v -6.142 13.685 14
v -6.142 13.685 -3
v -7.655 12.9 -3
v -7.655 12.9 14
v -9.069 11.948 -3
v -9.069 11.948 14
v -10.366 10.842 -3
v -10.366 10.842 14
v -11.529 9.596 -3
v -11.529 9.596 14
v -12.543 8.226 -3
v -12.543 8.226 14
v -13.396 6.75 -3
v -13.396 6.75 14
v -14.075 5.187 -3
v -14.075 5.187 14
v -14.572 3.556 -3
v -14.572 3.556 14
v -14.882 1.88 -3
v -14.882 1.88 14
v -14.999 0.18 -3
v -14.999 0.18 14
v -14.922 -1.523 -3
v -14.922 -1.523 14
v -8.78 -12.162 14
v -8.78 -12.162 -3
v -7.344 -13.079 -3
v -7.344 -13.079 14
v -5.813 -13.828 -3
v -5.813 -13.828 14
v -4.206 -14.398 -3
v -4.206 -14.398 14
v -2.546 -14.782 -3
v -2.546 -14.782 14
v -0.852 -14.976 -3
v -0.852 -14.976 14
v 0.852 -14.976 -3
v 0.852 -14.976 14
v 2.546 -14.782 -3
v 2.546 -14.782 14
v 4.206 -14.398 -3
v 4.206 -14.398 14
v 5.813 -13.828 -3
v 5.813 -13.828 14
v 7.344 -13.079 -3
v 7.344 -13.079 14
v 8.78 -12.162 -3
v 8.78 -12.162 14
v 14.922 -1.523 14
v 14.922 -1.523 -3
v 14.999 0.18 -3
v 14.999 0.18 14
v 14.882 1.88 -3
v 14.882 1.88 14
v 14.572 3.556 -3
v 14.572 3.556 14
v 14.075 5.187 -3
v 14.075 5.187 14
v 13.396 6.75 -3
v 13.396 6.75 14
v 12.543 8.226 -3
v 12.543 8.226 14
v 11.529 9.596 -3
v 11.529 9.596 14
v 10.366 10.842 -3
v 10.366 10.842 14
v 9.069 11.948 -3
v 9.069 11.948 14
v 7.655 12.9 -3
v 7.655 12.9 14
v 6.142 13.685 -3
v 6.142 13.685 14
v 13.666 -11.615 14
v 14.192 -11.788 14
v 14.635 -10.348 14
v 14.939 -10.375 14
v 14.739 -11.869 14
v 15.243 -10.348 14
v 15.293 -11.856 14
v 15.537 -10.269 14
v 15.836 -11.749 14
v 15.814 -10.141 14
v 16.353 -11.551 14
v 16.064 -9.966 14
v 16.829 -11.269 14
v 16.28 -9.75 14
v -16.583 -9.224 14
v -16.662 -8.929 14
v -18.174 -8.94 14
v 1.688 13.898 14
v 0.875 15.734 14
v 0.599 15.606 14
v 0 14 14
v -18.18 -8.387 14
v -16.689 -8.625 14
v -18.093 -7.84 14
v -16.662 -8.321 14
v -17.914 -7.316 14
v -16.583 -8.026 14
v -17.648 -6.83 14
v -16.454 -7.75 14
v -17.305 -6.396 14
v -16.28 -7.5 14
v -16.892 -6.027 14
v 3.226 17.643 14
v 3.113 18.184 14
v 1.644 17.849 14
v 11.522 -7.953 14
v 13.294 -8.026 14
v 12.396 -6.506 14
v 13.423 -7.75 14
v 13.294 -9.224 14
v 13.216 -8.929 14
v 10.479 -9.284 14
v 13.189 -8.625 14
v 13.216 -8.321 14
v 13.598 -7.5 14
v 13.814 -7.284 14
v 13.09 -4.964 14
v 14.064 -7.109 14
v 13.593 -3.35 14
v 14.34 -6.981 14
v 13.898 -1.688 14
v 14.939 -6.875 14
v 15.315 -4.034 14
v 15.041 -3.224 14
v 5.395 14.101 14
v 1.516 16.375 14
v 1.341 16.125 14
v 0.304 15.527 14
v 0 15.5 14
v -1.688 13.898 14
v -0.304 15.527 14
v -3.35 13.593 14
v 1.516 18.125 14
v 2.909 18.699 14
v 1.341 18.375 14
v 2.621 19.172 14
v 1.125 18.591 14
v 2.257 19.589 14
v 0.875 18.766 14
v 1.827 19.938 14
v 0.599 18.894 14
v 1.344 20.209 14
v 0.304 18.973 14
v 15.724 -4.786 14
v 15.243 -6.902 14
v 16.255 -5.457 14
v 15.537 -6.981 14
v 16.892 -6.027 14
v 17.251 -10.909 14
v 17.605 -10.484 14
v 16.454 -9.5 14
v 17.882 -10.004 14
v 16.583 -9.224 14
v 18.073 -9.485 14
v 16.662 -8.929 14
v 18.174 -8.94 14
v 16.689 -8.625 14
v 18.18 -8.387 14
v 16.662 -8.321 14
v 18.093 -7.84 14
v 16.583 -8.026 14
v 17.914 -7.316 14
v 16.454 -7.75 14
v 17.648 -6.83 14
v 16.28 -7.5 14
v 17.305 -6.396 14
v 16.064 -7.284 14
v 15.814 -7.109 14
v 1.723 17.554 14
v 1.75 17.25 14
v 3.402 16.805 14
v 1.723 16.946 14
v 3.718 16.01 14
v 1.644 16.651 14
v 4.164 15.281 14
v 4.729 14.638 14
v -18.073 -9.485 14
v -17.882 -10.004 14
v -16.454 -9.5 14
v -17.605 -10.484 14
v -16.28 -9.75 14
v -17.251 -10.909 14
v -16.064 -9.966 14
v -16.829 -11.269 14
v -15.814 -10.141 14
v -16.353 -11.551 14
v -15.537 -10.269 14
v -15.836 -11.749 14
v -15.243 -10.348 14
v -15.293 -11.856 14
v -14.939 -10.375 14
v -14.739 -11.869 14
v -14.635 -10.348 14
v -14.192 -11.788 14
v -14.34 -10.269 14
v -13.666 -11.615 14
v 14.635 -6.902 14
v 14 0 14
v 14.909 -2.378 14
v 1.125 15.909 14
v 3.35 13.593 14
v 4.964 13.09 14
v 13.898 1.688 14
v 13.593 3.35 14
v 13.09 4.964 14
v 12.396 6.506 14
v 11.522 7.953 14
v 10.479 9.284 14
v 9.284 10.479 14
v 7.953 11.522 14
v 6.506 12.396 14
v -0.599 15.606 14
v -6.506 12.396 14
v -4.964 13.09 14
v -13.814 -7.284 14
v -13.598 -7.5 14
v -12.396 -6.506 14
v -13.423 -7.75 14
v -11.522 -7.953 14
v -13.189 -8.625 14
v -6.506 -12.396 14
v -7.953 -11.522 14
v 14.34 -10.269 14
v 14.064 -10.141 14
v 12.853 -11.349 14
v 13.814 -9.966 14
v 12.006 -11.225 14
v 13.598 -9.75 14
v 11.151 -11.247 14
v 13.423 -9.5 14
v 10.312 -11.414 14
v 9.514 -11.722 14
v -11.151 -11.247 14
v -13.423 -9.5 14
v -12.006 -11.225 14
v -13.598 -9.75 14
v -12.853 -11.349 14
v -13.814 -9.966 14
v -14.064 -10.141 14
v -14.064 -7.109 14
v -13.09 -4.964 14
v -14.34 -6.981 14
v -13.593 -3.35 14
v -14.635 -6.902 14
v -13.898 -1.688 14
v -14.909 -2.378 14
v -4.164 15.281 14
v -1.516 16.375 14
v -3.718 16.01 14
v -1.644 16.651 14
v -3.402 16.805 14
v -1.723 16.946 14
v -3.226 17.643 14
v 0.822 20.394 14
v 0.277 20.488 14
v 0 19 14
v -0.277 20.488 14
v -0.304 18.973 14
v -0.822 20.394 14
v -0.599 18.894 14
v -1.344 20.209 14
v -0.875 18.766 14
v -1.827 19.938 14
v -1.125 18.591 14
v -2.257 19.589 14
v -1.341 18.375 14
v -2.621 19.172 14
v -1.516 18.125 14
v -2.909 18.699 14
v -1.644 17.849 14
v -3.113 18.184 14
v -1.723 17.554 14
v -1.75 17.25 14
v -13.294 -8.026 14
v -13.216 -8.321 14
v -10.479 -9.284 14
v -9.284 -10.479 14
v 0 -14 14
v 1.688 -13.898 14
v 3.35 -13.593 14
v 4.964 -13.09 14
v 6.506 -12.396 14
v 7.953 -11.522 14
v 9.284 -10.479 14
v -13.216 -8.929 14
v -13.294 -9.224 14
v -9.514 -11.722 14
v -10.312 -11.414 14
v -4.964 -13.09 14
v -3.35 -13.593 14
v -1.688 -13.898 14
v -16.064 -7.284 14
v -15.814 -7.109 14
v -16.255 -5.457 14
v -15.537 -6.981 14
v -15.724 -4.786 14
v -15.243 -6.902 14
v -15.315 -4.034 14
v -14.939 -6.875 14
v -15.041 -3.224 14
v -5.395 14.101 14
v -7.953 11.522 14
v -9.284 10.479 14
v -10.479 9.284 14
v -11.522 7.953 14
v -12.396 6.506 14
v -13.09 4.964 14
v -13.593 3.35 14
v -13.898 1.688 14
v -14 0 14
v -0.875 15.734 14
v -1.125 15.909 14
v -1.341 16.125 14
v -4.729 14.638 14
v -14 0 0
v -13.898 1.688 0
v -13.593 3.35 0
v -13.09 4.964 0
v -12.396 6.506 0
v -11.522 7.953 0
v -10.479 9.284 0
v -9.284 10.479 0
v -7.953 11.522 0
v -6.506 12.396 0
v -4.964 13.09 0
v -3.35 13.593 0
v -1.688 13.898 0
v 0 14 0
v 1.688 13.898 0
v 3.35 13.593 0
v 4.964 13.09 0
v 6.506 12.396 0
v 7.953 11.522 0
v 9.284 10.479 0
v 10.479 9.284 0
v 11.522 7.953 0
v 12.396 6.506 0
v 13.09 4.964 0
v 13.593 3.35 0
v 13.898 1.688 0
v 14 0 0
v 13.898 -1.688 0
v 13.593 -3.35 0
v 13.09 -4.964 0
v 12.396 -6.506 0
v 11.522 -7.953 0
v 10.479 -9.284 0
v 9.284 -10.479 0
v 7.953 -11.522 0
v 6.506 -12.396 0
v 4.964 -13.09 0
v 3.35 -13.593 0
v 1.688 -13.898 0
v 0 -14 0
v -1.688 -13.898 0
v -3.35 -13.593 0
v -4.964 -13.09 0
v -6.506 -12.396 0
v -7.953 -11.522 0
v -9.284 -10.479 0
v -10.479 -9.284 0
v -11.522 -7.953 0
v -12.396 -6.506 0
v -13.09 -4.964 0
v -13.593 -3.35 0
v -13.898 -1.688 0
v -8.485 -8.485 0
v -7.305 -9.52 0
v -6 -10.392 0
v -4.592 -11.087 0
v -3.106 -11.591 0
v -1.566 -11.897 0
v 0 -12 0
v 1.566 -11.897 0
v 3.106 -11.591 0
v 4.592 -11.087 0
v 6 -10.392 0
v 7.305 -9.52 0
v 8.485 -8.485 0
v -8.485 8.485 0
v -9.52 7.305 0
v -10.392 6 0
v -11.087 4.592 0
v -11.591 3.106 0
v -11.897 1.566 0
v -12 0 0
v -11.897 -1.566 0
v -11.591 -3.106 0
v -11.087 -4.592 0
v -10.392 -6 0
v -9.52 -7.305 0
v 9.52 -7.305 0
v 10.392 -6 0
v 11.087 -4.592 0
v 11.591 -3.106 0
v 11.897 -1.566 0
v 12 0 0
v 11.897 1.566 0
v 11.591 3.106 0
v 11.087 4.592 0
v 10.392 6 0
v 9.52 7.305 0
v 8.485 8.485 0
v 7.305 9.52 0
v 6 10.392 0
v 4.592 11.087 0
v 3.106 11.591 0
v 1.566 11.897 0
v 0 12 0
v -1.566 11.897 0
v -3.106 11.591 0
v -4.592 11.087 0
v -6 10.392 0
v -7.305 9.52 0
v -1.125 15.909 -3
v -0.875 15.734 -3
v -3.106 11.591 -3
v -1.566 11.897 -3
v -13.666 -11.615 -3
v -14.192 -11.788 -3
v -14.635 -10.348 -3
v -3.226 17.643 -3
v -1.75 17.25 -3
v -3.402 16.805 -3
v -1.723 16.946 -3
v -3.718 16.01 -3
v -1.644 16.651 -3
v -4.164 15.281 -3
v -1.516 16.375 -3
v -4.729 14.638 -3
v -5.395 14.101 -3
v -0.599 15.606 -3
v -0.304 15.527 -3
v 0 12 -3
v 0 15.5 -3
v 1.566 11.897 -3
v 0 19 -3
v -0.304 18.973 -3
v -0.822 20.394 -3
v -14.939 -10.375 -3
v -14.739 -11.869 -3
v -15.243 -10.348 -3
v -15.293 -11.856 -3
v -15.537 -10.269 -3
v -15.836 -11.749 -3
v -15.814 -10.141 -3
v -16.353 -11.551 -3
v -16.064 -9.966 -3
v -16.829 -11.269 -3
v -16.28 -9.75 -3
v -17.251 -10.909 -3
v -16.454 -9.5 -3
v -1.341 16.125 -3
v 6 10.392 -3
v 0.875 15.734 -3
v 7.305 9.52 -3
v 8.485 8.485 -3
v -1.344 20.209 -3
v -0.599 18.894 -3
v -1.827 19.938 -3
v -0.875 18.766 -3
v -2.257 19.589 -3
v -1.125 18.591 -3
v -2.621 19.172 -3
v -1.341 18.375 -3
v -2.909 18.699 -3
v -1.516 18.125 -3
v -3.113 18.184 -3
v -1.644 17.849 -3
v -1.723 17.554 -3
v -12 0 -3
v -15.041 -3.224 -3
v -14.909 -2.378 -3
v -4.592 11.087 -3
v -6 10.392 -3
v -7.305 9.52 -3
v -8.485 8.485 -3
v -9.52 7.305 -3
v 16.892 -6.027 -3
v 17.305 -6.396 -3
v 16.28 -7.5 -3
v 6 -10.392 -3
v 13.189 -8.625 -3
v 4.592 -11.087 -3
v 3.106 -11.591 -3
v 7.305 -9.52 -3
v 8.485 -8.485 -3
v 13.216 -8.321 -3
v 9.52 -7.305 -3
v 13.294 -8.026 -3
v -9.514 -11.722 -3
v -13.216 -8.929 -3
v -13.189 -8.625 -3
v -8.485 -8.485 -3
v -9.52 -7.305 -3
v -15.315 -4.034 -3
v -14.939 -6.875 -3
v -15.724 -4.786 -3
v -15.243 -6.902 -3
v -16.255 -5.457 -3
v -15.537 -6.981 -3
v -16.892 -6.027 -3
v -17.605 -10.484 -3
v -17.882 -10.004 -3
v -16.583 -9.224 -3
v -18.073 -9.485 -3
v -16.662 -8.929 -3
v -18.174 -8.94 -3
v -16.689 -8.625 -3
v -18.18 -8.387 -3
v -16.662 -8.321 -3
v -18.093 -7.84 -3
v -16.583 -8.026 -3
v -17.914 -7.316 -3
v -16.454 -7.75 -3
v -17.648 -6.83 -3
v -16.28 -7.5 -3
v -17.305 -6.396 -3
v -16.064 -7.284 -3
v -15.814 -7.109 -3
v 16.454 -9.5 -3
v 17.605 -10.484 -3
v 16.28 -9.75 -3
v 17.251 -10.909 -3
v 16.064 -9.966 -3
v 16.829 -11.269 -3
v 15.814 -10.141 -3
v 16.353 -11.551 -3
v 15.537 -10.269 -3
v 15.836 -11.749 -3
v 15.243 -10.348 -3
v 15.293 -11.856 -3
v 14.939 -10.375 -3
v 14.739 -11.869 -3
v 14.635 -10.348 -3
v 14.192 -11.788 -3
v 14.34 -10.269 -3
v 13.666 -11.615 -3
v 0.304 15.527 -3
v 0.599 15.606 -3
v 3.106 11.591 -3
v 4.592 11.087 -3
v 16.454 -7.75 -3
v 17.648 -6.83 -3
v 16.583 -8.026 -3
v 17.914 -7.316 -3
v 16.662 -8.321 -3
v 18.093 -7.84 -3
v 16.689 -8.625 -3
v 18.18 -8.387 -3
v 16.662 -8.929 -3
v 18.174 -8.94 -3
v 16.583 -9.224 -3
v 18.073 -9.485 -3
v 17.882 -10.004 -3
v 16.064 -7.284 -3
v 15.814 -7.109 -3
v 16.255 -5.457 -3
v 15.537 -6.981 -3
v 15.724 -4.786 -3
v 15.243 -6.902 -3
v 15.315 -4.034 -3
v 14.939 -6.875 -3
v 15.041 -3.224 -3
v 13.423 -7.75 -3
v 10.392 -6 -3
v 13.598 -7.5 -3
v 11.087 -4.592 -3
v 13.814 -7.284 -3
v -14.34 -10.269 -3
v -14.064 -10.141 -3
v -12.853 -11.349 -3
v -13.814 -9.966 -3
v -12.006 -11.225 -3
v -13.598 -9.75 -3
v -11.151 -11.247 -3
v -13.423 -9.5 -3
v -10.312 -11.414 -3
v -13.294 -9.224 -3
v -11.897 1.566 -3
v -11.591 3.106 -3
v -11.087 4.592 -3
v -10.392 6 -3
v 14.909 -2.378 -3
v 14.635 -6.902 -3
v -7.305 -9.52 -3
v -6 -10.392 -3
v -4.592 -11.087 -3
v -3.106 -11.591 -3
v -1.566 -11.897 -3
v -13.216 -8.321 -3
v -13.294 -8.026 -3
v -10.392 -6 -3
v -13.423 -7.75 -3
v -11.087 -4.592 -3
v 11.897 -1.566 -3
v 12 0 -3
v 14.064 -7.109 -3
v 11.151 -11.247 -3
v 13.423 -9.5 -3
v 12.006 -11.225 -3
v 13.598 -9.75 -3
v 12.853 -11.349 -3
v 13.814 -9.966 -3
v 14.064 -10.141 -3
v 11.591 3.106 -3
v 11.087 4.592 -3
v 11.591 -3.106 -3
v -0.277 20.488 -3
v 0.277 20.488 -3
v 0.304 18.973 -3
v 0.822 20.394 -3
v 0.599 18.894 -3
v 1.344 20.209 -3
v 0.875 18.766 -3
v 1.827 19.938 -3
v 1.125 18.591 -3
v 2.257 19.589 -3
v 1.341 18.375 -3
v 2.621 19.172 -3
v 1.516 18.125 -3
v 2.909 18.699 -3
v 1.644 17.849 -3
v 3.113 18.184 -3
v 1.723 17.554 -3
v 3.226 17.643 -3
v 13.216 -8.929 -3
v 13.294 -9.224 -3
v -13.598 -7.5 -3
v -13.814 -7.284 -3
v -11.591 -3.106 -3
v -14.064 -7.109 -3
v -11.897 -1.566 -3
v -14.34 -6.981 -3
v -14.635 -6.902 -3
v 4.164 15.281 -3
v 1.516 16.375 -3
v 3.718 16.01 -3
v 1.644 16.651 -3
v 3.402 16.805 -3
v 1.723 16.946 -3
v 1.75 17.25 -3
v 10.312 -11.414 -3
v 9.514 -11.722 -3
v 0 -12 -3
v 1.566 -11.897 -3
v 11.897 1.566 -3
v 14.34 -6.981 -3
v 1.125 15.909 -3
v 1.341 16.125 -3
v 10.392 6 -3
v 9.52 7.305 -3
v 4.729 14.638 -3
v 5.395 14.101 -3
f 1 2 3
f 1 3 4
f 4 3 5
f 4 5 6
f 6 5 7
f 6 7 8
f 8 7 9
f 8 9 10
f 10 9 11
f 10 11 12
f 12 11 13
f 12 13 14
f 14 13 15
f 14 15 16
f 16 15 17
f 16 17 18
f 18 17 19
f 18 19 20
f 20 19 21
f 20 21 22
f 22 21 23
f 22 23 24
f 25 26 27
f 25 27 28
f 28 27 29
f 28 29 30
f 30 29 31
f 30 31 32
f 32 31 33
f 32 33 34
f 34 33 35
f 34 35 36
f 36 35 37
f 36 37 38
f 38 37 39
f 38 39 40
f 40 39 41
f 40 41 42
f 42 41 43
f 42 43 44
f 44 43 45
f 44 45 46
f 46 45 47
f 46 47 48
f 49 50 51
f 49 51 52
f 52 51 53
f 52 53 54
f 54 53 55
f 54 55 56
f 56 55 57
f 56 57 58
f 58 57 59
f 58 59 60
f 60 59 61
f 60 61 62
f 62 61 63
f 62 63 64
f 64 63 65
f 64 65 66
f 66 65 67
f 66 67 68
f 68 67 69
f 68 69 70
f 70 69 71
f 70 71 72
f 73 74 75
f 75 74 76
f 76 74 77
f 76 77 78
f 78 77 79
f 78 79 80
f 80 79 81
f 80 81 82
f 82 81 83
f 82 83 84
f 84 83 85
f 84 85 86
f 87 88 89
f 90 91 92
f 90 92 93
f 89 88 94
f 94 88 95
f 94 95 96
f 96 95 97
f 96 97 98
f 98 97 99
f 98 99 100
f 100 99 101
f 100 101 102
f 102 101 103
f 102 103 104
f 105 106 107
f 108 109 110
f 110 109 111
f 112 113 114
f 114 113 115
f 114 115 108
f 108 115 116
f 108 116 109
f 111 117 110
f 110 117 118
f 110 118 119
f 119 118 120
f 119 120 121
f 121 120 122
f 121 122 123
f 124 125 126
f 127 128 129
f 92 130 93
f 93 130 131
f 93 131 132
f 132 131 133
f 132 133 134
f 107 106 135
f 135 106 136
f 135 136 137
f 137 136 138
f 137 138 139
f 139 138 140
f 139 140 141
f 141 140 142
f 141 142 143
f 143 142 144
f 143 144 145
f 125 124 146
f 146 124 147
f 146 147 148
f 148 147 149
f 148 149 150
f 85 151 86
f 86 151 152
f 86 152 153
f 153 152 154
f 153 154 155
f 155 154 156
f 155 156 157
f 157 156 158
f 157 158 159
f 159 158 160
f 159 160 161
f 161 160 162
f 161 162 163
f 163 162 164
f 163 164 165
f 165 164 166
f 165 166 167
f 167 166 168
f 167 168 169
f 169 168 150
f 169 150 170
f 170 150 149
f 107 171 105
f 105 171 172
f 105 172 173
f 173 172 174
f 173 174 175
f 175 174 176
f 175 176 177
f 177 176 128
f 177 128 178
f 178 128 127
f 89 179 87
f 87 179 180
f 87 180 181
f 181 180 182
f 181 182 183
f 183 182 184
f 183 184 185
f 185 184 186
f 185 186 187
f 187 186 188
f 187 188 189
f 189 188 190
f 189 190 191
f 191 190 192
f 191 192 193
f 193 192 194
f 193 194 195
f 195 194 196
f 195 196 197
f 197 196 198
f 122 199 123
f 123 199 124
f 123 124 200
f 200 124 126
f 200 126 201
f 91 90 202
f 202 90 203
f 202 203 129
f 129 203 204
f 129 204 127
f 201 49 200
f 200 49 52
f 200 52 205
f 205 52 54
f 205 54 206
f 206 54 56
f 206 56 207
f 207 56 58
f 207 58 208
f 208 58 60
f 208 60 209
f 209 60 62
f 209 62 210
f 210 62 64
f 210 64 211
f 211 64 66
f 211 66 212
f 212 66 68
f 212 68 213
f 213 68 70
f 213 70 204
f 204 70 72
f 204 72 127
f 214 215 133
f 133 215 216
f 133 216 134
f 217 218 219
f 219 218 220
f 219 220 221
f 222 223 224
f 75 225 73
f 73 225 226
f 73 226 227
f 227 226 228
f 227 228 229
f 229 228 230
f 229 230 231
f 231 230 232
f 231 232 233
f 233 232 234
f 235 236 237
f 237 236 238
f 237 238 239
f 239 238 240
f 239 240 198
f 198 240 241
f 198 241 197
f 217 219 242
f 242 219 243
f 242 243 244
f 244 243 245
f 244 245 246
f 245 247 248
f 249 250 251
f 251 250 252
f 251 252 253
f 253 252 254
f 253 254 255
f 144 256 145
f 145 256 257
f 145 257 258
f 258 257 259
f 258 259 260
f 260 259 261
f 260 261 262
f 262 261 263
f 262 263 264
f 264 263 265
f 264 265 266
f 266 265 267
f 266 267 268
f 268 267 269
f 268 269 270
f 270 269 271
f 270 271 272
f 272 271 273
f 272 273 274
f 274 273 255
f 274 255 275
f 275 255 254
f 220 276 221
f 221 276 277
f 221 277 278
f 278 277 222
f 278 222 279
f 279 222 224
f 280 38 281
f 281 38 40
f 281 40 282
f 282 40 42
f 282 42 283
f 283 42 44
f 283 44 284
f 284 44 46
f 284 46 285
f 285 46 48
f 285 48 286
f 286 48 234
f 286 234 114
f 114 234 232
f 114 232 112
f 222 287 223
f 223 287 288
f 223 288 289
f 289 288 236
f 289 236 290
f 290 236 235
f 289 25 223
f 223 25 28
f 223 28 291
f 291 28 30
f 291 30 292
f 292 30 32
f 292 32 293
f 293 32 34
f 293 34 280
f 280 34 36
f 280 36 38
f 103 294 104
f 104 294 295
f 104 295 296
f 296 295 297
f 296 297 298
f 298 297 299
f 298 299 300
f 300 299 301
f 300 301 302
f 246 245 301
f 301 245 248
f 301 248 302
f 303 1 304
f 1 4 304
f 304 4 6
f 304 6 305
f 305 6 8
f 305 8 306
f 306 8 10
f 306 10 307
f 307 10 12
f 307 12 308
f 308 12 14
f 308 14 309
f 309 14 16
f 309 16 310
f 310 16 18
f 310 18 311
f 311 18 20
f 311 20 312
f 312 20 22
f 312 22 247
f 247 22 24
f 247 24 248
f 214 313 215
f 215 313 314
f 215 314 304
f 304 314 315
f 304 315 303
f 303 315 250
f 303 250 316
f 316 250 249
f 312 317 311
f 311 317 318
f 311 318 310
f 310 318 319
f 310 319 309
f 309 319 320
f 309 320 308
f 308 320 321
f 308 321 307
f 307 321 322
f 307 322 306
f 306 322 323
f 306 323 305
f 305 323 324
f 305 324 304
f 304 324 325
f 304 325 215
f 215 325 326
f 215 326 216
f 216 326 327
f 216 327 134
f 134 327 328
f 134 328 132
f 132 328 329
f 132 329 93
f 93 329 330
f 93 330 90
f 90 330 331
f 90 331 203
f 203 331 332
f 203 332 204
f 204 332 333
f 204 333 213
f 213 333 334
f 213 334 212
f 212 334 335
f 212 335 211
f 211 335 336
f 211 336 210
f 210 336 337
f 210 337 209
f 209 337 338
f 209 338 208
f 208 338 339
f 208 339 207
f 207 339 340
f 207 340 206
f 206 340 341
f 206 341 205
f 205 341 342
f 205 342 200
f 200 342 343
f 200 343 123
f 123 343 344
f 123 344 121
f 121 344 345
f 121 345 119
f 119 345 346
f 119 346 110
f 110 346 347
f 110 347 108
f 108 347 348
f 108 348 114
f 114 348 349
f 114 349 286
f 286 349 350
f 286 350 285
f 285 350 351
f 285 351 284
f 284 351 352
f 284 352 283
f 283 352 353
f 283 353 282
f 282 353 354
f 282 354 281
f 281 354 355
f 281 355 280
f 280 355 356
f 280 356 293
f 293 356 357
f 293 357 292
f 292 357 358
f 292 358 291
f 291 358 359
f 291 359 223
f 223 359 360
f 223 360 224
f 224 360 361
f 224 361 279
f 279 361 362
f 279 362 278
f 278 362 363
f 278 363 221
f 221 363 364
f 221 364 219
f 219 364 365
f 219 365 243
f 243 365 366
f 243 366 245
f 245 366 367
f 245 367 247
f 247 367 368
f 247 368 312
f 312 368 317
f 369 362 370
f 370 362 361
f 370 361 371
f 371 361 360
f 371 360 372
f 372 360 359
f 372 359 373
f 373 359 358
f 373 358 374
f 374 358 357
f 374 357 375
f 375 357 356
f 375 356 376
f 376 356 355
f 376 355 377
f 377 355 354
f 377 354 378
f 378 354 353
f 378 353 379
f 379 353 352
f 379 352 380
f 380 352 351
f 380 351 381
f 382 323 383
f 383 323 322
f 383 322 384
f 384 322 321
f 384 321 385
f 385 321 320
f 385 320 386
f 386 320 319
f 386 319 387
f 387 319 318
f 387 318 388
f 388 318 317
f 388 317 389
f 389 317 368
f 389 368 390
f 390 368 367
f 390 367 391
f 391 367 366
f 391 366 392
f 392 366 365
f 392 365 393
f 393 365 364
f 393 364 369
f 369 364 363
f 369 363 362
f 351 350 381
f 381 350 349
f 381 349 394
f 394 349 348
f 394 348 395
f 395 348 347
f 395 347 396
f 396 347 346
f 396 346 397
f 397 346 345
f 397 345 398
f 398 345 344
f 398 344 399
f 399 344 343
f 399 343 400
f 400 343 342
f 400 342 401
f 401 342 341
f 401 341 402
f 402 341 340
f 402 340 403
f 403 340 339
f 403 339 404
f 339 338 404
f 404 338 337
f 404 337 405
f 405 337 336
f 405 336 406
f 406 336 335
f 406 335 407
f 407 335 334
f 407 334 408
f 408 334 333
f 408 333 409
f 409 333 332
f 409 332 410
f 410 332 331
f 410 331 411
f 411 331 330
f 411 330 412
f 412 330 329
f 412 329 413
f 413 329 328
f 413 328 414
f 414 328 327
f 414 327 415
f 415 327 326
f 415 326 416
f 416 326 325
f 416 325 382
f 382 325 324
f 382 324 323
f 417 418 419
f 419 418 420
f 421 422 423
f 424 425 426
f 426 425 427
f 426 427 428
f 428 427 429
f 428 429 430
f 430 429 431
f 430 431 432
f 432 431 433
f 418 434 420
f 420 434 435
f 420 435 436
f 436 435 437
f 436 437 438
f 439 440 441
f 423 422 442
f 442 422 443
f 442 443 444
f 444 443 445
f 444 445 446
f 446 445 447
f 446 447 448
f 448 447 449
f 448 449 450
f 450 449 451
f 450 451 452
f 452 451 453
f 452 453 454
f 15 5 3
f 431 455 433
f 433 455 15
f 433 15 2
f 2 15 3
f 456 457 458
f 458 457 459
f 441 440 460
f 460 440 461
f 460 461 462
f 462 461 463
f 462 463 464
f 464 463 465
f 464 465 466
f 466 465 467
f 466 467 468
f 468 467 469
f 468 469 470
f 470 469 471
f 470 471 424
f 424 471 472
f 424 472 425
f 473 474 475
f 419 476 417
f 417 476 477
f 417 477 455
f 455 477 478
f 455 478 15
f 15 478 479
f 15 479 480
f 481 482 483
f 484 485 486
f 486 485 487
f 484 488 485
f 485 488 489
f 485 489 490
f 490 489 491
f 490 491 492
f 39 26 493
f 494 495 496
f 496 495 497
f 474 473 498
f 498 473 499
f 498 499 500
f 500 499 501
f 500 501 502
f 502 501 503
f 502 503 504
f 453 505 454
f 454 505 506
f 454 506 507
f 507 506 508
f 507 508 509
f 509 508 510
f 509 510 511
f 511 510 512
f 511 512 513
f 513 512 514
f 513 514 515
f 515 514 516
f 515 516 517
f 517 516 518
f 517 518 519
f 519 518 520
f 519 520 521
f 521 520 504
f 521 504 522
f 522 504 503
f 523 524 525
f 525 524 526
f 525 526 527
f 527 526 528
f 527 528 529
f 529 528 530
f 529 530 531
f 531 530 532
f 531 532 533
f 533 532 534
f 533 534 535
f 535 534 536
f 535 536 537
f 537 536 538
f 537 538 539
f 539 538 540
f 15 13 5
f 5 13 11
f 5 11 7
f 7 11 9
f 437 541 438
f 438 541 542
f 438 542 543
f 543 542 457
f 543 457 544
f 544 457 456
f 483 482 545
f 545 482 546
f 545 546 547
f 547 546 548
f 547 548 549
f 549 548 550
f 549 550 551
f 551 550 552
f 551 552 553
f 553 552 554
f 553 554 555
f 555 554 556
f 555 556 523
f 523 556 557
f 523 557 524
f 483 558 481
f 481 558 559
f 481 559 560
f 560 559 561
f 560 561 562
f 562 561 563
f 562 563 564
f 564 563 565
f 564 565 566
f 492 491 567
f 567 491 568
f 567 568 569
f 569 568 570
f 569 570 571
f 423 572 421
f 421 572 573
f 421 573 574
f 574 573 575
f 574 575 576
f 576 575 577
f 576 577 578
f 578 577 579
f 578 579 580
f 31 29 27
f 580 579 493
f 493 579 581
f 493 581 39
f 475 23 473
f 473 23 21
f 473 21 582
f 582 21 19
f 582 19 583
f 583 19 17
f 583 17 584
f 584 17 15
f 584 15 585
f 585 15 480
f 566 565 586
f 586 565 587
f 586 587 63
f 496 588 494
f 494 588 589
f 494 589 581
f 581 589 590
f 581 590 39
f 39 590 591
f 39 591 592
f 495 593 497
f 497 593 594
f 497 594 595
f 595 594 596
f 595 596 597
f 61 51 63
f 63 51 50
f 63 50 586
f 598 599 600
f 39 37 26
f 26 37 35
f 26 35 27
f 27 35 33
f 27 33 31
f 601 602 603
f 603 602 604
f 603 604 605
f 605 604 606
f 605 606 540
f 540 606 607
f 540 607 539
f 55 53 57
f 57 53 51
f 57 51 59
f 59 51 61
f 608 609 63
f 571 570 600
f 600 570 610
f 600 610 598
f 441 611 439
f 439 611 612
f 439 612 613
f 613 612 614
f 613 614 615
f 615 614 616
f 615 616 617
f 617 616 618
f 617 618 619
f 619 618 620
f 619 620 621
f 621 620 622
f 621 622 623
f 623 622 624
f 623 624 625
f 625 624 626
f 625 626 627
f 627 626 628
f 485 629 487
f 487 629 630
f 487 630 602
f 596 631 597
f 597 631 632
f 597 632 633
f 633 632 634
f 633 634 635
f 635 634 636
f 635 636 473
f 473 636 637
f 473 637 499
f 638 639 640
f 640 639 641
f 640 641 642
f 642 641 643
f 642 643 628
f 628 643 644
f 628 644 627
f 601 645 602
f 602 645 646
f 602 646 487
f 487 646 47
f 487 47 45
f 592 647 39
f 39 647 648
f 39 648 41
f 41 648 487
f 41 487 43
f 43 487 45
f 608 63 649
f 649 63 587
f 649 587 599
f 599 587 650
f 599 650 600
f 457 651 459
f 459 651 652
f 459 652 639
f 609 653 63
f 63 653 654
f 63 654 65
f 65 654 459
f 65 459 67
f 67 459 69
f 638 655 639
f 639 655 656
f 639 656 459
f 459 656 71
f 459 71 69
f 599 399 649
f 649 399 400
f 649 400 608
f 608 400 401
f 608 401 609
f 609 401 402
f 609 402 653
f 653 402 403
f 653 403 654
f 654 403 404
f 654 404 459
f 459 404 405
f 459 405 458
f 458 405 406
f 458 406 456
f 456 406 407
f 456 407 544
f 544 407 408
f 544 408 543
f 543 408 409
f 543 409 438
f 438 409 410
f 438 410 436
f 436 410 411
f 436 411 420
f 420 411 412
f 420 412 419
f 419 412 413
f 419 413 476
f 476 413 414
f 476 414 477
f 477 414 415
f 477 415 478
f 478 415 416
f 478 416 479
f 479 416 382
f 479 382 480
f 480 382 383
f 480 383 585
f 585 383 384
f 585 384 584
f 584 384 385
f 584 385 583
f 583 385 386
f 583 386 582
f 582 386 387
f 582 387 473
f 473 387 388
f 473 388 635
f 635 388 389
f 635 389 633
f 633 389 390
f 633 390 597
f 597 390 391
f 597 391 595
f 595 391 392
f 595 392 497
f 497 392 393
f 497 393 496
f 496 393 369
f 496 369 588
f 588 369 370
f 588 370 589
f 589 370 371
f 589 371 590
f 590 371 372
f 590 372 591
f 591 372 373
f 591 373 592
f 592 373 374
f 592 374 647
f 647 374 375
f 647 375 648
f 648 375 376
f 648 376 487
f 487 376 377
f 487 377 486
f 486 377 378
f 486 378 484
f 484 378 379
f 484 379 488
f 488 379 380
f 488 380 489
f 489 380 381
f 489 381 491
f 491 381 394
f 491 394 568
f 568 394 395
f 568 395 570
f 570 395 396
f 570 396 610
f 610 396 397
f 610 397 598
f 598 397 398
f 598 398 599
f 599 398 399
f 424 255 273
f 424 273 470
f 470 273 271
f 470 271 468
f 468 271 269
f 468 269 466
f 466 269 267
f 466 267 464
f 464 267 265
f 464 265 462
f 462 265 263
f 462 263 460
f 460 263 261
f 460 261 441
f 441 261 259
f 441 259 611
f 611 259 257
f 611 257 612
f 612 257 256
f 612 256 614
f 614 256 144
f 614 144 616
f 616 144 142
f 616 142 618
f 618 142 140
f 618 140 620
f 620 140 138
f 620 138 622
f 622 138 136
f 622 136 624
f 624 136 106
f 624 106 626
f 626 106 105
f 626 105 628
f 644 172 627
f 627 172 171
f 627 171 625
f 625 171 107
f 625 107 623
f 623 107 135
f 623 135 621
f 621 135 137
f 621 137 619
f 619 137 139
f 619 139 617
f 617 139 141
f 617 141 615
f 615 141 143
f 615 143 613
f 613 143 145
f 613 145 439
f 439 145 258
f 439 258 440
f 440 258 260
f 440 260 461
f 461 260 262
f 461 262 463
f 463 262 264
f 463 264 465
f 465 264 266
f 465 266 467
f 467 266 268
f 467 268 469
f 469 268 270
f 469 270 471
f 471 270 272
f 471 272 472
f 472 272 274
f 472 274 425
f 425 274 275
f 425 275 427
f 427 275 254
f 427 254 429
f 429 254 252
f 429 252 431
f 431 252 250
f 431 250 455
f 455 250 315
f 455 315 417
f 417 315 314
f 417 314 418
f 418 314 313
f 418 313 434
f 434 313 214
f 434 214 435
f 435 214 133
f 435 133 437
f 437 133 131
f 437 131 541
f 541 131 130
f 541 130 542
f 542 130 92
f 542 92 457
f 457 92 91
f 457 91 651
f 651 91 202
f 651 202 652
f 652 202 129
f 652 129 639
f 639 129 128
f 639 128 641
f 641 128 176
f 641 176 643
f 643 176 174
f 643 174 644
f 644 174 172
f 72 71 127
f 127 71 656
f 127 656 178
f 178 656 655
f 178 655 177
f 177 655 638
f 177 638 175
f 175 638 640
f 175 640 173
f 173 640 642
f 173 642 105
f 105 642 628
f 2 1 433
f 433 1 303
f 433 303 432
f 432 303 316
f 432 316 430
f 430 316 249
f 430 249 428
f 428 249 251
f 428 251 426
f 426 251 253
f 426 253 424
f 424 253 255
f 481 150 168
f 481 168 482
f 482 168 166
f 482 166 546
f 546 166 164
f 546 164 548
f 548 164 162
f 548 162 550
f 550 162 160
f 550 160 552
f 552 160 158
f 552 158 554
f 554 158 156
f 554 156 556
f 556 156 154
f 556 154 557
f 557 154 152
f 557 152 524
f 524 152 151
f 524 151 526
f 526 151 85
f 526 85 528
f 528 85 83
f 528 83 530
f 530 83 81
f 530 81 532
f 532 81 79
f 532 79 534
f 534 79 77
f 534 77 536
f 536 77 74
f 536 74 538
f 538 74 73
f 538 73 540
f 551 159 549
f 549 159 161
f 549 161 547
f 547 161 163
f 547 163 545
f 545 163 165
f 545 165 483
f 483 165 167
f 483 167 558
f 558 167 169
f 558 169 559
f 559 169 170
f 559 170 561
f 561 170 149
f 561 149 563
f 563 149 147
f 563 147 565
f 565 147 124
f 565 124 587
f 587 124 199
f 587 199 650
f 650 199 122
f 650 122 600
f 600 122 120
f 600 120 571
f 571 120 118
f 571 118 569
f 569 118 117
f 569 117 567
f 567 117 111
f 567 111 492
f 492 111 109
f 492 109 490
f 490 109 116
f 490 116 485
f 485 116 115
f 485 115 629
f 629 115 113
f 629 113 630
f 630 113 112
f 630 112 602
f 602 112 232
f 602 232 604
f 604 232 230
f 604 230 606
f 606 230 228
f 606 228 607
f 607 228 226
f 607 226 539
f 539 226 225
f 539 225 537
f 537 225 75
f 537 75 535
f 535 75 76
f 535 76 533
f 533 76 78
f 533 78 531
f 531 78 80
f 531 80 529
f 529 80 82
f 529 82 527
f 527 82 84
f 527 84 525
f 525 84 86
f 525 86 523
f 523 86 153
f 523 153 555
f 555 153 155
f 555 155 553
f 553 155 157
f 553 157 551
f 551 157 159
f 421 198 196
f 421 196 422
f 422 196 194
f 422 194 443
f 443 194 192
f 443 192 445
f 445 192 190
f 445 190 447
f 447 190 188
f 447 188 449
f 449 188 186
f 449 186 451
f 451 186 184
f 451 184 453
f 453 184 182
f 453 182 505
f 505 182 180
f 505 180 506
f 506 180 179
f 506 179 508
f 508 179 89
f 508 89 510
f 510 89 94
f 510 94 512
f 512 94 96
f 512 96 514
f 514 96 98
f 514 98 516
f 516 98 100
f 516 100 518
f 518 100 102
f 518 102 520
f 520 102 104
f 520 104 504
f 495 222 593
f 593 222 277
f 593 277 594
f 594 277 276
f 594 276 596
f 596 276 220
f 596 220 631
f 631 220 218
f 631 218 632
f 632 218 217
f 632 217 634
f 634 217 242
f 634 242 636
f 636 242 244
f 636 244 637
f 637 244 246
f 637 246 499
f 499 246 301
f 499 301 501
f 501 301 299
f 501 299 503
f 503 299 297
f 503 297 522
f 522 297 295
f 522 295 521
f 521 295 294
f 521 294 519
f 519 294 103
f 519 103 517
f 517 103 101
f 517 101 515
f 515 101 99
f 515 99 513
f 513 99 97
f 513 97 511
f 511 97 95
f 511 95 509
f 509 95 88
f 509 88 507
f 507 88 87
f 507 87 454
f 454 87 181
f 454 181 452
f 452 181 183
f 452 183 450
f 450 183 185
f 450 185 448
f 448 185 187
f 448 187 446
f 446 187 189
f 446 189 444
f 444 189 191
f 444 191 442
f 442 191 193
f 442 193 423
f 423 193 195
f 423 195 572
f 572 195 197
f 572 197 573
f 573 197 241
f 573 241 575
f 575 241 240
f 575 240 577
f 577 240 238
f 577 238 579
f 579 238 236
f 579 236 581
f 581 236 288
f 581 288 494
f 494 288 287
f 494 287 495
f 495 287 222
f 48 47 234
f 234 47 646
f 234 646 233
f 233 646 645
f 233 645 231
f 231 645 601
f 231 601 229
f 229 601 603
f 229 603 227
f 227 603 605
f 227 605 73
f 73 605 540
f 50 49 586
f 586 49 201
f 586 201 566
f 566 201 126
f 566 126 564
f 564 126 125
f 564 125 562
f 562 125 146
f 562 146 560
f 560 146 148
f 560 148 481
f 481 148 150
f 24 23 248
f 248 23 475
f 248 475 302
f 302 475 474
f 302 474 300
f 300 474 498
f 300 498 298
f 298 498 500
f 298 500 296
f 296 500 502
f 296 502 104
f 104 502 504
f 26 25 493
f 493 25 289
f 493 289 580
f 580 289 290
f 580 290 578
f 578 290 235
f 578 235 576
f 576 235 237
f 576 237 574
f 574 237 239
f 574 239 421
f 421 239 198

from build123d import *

# Parameters (mm, degrees)
SKETCH1_R                = 15
BOSS_EXTRUDE1_DEPTH      = 14
SKETCH4_R                = 14
CUT_EXTRUDE1_DEPTH       = 15
SKETCH3_R                = 15
SKETCH3_R_2              = 12
BOSS_EXTRUDE2_DEPTH      = 3
SKETCH6_R                = 3.25
SKETCH6_R_2              = 1.75
BOSS_EXTRUDE4_DEPTH      = 17
FILLET1_R                = 5
CIRPATTERN2_COUNT        = 3
FILLET1_OF_CIRPATTERN2_R = 5


with BuildPart() as part:
    # Sketch1 → Boss-Extrude1 (new body)
    with BuildSketch(Plane.XY):
        Circle(SKETCH1_R)
    extrude(amount=BOSS_EXTRUDE1_DEPTH)

    # Sketch4 → Cut-Extrude1 (cut, through all)
    with BuildSketch(Plane(origin=(0, 0, 0), x_dir=(-1, 0, 0), z_dir=(0, 0, -1))):
        Circle(SKETCH4_R)
    extrude(amount=-CUT_EXTRUDE1_DEPTH, mode=Mode.SUBTRACT)

    # Sketch3 → Boss-Extrude2 (add)
    with BuildSketch(Plane(origin=(0, 0, 0), x_dir=(-1, 0, 0), z_dir=(0, 0, -1))):
        Circle(SKETCH3_R)
        Circle(SKETCH3_R_2, mode=Mode.SUBTRACT)
    extrude(amount=BOSS_EXTRUDE2_DEPTH)

    # Sketch6 → Boss-Extrude4 (add)
    with BuildSketch(Plane.XY.offset(14)):
        with Locations((0, 17.25)):
            Circle(SKETCH6_R)
        with Locations((0, 17.25)):
            Circle(SKETCH6_R_2, mode=Mode.SUBTRACT)
    boss_extrude4 = extrude(amount=-BOSS_EXTRUDE4_DEPTH)

    # Fillet1
    fillet1_edges = [part.edges().sort_by_distance(p)[0] for p in [
        (2.181099234, 14.84057971, 7),
        (-2.181099234, 14.84057971, 7),
    ]]
    fillet(fillet1_edges, radius=FILLET1_R)

    # CirPattern2: Boss-Extrude4 ×3 about axis
    cirpattern2_axis = Axis((0, 0, 0), (0, 0, 1))
    for i in range(1, CIRPATTERN2_COUNT):
        add(boss_extrude4.rotate(cirpattern2_axis, i * 360 / CIRPATTERN2_COUNT))

    # Fillet1 of CirPattern2
    fillet1_of_cirpattern2_edges = [part.edges().sort_by_distance(p)[0] for p in [
        (-13.942868653, -5.531402511, 7),
        (-11.761769419, -9.3091772, 7),
        (11.761769419, -9.3091772, 7),
        (13.942868653, -5.531402511, 7),
    ]]
    fillet(fillet1_of_cirpattern2_edges, radius=FILLET1_OF_CIRPATTERN2_R)


solid = part.part
